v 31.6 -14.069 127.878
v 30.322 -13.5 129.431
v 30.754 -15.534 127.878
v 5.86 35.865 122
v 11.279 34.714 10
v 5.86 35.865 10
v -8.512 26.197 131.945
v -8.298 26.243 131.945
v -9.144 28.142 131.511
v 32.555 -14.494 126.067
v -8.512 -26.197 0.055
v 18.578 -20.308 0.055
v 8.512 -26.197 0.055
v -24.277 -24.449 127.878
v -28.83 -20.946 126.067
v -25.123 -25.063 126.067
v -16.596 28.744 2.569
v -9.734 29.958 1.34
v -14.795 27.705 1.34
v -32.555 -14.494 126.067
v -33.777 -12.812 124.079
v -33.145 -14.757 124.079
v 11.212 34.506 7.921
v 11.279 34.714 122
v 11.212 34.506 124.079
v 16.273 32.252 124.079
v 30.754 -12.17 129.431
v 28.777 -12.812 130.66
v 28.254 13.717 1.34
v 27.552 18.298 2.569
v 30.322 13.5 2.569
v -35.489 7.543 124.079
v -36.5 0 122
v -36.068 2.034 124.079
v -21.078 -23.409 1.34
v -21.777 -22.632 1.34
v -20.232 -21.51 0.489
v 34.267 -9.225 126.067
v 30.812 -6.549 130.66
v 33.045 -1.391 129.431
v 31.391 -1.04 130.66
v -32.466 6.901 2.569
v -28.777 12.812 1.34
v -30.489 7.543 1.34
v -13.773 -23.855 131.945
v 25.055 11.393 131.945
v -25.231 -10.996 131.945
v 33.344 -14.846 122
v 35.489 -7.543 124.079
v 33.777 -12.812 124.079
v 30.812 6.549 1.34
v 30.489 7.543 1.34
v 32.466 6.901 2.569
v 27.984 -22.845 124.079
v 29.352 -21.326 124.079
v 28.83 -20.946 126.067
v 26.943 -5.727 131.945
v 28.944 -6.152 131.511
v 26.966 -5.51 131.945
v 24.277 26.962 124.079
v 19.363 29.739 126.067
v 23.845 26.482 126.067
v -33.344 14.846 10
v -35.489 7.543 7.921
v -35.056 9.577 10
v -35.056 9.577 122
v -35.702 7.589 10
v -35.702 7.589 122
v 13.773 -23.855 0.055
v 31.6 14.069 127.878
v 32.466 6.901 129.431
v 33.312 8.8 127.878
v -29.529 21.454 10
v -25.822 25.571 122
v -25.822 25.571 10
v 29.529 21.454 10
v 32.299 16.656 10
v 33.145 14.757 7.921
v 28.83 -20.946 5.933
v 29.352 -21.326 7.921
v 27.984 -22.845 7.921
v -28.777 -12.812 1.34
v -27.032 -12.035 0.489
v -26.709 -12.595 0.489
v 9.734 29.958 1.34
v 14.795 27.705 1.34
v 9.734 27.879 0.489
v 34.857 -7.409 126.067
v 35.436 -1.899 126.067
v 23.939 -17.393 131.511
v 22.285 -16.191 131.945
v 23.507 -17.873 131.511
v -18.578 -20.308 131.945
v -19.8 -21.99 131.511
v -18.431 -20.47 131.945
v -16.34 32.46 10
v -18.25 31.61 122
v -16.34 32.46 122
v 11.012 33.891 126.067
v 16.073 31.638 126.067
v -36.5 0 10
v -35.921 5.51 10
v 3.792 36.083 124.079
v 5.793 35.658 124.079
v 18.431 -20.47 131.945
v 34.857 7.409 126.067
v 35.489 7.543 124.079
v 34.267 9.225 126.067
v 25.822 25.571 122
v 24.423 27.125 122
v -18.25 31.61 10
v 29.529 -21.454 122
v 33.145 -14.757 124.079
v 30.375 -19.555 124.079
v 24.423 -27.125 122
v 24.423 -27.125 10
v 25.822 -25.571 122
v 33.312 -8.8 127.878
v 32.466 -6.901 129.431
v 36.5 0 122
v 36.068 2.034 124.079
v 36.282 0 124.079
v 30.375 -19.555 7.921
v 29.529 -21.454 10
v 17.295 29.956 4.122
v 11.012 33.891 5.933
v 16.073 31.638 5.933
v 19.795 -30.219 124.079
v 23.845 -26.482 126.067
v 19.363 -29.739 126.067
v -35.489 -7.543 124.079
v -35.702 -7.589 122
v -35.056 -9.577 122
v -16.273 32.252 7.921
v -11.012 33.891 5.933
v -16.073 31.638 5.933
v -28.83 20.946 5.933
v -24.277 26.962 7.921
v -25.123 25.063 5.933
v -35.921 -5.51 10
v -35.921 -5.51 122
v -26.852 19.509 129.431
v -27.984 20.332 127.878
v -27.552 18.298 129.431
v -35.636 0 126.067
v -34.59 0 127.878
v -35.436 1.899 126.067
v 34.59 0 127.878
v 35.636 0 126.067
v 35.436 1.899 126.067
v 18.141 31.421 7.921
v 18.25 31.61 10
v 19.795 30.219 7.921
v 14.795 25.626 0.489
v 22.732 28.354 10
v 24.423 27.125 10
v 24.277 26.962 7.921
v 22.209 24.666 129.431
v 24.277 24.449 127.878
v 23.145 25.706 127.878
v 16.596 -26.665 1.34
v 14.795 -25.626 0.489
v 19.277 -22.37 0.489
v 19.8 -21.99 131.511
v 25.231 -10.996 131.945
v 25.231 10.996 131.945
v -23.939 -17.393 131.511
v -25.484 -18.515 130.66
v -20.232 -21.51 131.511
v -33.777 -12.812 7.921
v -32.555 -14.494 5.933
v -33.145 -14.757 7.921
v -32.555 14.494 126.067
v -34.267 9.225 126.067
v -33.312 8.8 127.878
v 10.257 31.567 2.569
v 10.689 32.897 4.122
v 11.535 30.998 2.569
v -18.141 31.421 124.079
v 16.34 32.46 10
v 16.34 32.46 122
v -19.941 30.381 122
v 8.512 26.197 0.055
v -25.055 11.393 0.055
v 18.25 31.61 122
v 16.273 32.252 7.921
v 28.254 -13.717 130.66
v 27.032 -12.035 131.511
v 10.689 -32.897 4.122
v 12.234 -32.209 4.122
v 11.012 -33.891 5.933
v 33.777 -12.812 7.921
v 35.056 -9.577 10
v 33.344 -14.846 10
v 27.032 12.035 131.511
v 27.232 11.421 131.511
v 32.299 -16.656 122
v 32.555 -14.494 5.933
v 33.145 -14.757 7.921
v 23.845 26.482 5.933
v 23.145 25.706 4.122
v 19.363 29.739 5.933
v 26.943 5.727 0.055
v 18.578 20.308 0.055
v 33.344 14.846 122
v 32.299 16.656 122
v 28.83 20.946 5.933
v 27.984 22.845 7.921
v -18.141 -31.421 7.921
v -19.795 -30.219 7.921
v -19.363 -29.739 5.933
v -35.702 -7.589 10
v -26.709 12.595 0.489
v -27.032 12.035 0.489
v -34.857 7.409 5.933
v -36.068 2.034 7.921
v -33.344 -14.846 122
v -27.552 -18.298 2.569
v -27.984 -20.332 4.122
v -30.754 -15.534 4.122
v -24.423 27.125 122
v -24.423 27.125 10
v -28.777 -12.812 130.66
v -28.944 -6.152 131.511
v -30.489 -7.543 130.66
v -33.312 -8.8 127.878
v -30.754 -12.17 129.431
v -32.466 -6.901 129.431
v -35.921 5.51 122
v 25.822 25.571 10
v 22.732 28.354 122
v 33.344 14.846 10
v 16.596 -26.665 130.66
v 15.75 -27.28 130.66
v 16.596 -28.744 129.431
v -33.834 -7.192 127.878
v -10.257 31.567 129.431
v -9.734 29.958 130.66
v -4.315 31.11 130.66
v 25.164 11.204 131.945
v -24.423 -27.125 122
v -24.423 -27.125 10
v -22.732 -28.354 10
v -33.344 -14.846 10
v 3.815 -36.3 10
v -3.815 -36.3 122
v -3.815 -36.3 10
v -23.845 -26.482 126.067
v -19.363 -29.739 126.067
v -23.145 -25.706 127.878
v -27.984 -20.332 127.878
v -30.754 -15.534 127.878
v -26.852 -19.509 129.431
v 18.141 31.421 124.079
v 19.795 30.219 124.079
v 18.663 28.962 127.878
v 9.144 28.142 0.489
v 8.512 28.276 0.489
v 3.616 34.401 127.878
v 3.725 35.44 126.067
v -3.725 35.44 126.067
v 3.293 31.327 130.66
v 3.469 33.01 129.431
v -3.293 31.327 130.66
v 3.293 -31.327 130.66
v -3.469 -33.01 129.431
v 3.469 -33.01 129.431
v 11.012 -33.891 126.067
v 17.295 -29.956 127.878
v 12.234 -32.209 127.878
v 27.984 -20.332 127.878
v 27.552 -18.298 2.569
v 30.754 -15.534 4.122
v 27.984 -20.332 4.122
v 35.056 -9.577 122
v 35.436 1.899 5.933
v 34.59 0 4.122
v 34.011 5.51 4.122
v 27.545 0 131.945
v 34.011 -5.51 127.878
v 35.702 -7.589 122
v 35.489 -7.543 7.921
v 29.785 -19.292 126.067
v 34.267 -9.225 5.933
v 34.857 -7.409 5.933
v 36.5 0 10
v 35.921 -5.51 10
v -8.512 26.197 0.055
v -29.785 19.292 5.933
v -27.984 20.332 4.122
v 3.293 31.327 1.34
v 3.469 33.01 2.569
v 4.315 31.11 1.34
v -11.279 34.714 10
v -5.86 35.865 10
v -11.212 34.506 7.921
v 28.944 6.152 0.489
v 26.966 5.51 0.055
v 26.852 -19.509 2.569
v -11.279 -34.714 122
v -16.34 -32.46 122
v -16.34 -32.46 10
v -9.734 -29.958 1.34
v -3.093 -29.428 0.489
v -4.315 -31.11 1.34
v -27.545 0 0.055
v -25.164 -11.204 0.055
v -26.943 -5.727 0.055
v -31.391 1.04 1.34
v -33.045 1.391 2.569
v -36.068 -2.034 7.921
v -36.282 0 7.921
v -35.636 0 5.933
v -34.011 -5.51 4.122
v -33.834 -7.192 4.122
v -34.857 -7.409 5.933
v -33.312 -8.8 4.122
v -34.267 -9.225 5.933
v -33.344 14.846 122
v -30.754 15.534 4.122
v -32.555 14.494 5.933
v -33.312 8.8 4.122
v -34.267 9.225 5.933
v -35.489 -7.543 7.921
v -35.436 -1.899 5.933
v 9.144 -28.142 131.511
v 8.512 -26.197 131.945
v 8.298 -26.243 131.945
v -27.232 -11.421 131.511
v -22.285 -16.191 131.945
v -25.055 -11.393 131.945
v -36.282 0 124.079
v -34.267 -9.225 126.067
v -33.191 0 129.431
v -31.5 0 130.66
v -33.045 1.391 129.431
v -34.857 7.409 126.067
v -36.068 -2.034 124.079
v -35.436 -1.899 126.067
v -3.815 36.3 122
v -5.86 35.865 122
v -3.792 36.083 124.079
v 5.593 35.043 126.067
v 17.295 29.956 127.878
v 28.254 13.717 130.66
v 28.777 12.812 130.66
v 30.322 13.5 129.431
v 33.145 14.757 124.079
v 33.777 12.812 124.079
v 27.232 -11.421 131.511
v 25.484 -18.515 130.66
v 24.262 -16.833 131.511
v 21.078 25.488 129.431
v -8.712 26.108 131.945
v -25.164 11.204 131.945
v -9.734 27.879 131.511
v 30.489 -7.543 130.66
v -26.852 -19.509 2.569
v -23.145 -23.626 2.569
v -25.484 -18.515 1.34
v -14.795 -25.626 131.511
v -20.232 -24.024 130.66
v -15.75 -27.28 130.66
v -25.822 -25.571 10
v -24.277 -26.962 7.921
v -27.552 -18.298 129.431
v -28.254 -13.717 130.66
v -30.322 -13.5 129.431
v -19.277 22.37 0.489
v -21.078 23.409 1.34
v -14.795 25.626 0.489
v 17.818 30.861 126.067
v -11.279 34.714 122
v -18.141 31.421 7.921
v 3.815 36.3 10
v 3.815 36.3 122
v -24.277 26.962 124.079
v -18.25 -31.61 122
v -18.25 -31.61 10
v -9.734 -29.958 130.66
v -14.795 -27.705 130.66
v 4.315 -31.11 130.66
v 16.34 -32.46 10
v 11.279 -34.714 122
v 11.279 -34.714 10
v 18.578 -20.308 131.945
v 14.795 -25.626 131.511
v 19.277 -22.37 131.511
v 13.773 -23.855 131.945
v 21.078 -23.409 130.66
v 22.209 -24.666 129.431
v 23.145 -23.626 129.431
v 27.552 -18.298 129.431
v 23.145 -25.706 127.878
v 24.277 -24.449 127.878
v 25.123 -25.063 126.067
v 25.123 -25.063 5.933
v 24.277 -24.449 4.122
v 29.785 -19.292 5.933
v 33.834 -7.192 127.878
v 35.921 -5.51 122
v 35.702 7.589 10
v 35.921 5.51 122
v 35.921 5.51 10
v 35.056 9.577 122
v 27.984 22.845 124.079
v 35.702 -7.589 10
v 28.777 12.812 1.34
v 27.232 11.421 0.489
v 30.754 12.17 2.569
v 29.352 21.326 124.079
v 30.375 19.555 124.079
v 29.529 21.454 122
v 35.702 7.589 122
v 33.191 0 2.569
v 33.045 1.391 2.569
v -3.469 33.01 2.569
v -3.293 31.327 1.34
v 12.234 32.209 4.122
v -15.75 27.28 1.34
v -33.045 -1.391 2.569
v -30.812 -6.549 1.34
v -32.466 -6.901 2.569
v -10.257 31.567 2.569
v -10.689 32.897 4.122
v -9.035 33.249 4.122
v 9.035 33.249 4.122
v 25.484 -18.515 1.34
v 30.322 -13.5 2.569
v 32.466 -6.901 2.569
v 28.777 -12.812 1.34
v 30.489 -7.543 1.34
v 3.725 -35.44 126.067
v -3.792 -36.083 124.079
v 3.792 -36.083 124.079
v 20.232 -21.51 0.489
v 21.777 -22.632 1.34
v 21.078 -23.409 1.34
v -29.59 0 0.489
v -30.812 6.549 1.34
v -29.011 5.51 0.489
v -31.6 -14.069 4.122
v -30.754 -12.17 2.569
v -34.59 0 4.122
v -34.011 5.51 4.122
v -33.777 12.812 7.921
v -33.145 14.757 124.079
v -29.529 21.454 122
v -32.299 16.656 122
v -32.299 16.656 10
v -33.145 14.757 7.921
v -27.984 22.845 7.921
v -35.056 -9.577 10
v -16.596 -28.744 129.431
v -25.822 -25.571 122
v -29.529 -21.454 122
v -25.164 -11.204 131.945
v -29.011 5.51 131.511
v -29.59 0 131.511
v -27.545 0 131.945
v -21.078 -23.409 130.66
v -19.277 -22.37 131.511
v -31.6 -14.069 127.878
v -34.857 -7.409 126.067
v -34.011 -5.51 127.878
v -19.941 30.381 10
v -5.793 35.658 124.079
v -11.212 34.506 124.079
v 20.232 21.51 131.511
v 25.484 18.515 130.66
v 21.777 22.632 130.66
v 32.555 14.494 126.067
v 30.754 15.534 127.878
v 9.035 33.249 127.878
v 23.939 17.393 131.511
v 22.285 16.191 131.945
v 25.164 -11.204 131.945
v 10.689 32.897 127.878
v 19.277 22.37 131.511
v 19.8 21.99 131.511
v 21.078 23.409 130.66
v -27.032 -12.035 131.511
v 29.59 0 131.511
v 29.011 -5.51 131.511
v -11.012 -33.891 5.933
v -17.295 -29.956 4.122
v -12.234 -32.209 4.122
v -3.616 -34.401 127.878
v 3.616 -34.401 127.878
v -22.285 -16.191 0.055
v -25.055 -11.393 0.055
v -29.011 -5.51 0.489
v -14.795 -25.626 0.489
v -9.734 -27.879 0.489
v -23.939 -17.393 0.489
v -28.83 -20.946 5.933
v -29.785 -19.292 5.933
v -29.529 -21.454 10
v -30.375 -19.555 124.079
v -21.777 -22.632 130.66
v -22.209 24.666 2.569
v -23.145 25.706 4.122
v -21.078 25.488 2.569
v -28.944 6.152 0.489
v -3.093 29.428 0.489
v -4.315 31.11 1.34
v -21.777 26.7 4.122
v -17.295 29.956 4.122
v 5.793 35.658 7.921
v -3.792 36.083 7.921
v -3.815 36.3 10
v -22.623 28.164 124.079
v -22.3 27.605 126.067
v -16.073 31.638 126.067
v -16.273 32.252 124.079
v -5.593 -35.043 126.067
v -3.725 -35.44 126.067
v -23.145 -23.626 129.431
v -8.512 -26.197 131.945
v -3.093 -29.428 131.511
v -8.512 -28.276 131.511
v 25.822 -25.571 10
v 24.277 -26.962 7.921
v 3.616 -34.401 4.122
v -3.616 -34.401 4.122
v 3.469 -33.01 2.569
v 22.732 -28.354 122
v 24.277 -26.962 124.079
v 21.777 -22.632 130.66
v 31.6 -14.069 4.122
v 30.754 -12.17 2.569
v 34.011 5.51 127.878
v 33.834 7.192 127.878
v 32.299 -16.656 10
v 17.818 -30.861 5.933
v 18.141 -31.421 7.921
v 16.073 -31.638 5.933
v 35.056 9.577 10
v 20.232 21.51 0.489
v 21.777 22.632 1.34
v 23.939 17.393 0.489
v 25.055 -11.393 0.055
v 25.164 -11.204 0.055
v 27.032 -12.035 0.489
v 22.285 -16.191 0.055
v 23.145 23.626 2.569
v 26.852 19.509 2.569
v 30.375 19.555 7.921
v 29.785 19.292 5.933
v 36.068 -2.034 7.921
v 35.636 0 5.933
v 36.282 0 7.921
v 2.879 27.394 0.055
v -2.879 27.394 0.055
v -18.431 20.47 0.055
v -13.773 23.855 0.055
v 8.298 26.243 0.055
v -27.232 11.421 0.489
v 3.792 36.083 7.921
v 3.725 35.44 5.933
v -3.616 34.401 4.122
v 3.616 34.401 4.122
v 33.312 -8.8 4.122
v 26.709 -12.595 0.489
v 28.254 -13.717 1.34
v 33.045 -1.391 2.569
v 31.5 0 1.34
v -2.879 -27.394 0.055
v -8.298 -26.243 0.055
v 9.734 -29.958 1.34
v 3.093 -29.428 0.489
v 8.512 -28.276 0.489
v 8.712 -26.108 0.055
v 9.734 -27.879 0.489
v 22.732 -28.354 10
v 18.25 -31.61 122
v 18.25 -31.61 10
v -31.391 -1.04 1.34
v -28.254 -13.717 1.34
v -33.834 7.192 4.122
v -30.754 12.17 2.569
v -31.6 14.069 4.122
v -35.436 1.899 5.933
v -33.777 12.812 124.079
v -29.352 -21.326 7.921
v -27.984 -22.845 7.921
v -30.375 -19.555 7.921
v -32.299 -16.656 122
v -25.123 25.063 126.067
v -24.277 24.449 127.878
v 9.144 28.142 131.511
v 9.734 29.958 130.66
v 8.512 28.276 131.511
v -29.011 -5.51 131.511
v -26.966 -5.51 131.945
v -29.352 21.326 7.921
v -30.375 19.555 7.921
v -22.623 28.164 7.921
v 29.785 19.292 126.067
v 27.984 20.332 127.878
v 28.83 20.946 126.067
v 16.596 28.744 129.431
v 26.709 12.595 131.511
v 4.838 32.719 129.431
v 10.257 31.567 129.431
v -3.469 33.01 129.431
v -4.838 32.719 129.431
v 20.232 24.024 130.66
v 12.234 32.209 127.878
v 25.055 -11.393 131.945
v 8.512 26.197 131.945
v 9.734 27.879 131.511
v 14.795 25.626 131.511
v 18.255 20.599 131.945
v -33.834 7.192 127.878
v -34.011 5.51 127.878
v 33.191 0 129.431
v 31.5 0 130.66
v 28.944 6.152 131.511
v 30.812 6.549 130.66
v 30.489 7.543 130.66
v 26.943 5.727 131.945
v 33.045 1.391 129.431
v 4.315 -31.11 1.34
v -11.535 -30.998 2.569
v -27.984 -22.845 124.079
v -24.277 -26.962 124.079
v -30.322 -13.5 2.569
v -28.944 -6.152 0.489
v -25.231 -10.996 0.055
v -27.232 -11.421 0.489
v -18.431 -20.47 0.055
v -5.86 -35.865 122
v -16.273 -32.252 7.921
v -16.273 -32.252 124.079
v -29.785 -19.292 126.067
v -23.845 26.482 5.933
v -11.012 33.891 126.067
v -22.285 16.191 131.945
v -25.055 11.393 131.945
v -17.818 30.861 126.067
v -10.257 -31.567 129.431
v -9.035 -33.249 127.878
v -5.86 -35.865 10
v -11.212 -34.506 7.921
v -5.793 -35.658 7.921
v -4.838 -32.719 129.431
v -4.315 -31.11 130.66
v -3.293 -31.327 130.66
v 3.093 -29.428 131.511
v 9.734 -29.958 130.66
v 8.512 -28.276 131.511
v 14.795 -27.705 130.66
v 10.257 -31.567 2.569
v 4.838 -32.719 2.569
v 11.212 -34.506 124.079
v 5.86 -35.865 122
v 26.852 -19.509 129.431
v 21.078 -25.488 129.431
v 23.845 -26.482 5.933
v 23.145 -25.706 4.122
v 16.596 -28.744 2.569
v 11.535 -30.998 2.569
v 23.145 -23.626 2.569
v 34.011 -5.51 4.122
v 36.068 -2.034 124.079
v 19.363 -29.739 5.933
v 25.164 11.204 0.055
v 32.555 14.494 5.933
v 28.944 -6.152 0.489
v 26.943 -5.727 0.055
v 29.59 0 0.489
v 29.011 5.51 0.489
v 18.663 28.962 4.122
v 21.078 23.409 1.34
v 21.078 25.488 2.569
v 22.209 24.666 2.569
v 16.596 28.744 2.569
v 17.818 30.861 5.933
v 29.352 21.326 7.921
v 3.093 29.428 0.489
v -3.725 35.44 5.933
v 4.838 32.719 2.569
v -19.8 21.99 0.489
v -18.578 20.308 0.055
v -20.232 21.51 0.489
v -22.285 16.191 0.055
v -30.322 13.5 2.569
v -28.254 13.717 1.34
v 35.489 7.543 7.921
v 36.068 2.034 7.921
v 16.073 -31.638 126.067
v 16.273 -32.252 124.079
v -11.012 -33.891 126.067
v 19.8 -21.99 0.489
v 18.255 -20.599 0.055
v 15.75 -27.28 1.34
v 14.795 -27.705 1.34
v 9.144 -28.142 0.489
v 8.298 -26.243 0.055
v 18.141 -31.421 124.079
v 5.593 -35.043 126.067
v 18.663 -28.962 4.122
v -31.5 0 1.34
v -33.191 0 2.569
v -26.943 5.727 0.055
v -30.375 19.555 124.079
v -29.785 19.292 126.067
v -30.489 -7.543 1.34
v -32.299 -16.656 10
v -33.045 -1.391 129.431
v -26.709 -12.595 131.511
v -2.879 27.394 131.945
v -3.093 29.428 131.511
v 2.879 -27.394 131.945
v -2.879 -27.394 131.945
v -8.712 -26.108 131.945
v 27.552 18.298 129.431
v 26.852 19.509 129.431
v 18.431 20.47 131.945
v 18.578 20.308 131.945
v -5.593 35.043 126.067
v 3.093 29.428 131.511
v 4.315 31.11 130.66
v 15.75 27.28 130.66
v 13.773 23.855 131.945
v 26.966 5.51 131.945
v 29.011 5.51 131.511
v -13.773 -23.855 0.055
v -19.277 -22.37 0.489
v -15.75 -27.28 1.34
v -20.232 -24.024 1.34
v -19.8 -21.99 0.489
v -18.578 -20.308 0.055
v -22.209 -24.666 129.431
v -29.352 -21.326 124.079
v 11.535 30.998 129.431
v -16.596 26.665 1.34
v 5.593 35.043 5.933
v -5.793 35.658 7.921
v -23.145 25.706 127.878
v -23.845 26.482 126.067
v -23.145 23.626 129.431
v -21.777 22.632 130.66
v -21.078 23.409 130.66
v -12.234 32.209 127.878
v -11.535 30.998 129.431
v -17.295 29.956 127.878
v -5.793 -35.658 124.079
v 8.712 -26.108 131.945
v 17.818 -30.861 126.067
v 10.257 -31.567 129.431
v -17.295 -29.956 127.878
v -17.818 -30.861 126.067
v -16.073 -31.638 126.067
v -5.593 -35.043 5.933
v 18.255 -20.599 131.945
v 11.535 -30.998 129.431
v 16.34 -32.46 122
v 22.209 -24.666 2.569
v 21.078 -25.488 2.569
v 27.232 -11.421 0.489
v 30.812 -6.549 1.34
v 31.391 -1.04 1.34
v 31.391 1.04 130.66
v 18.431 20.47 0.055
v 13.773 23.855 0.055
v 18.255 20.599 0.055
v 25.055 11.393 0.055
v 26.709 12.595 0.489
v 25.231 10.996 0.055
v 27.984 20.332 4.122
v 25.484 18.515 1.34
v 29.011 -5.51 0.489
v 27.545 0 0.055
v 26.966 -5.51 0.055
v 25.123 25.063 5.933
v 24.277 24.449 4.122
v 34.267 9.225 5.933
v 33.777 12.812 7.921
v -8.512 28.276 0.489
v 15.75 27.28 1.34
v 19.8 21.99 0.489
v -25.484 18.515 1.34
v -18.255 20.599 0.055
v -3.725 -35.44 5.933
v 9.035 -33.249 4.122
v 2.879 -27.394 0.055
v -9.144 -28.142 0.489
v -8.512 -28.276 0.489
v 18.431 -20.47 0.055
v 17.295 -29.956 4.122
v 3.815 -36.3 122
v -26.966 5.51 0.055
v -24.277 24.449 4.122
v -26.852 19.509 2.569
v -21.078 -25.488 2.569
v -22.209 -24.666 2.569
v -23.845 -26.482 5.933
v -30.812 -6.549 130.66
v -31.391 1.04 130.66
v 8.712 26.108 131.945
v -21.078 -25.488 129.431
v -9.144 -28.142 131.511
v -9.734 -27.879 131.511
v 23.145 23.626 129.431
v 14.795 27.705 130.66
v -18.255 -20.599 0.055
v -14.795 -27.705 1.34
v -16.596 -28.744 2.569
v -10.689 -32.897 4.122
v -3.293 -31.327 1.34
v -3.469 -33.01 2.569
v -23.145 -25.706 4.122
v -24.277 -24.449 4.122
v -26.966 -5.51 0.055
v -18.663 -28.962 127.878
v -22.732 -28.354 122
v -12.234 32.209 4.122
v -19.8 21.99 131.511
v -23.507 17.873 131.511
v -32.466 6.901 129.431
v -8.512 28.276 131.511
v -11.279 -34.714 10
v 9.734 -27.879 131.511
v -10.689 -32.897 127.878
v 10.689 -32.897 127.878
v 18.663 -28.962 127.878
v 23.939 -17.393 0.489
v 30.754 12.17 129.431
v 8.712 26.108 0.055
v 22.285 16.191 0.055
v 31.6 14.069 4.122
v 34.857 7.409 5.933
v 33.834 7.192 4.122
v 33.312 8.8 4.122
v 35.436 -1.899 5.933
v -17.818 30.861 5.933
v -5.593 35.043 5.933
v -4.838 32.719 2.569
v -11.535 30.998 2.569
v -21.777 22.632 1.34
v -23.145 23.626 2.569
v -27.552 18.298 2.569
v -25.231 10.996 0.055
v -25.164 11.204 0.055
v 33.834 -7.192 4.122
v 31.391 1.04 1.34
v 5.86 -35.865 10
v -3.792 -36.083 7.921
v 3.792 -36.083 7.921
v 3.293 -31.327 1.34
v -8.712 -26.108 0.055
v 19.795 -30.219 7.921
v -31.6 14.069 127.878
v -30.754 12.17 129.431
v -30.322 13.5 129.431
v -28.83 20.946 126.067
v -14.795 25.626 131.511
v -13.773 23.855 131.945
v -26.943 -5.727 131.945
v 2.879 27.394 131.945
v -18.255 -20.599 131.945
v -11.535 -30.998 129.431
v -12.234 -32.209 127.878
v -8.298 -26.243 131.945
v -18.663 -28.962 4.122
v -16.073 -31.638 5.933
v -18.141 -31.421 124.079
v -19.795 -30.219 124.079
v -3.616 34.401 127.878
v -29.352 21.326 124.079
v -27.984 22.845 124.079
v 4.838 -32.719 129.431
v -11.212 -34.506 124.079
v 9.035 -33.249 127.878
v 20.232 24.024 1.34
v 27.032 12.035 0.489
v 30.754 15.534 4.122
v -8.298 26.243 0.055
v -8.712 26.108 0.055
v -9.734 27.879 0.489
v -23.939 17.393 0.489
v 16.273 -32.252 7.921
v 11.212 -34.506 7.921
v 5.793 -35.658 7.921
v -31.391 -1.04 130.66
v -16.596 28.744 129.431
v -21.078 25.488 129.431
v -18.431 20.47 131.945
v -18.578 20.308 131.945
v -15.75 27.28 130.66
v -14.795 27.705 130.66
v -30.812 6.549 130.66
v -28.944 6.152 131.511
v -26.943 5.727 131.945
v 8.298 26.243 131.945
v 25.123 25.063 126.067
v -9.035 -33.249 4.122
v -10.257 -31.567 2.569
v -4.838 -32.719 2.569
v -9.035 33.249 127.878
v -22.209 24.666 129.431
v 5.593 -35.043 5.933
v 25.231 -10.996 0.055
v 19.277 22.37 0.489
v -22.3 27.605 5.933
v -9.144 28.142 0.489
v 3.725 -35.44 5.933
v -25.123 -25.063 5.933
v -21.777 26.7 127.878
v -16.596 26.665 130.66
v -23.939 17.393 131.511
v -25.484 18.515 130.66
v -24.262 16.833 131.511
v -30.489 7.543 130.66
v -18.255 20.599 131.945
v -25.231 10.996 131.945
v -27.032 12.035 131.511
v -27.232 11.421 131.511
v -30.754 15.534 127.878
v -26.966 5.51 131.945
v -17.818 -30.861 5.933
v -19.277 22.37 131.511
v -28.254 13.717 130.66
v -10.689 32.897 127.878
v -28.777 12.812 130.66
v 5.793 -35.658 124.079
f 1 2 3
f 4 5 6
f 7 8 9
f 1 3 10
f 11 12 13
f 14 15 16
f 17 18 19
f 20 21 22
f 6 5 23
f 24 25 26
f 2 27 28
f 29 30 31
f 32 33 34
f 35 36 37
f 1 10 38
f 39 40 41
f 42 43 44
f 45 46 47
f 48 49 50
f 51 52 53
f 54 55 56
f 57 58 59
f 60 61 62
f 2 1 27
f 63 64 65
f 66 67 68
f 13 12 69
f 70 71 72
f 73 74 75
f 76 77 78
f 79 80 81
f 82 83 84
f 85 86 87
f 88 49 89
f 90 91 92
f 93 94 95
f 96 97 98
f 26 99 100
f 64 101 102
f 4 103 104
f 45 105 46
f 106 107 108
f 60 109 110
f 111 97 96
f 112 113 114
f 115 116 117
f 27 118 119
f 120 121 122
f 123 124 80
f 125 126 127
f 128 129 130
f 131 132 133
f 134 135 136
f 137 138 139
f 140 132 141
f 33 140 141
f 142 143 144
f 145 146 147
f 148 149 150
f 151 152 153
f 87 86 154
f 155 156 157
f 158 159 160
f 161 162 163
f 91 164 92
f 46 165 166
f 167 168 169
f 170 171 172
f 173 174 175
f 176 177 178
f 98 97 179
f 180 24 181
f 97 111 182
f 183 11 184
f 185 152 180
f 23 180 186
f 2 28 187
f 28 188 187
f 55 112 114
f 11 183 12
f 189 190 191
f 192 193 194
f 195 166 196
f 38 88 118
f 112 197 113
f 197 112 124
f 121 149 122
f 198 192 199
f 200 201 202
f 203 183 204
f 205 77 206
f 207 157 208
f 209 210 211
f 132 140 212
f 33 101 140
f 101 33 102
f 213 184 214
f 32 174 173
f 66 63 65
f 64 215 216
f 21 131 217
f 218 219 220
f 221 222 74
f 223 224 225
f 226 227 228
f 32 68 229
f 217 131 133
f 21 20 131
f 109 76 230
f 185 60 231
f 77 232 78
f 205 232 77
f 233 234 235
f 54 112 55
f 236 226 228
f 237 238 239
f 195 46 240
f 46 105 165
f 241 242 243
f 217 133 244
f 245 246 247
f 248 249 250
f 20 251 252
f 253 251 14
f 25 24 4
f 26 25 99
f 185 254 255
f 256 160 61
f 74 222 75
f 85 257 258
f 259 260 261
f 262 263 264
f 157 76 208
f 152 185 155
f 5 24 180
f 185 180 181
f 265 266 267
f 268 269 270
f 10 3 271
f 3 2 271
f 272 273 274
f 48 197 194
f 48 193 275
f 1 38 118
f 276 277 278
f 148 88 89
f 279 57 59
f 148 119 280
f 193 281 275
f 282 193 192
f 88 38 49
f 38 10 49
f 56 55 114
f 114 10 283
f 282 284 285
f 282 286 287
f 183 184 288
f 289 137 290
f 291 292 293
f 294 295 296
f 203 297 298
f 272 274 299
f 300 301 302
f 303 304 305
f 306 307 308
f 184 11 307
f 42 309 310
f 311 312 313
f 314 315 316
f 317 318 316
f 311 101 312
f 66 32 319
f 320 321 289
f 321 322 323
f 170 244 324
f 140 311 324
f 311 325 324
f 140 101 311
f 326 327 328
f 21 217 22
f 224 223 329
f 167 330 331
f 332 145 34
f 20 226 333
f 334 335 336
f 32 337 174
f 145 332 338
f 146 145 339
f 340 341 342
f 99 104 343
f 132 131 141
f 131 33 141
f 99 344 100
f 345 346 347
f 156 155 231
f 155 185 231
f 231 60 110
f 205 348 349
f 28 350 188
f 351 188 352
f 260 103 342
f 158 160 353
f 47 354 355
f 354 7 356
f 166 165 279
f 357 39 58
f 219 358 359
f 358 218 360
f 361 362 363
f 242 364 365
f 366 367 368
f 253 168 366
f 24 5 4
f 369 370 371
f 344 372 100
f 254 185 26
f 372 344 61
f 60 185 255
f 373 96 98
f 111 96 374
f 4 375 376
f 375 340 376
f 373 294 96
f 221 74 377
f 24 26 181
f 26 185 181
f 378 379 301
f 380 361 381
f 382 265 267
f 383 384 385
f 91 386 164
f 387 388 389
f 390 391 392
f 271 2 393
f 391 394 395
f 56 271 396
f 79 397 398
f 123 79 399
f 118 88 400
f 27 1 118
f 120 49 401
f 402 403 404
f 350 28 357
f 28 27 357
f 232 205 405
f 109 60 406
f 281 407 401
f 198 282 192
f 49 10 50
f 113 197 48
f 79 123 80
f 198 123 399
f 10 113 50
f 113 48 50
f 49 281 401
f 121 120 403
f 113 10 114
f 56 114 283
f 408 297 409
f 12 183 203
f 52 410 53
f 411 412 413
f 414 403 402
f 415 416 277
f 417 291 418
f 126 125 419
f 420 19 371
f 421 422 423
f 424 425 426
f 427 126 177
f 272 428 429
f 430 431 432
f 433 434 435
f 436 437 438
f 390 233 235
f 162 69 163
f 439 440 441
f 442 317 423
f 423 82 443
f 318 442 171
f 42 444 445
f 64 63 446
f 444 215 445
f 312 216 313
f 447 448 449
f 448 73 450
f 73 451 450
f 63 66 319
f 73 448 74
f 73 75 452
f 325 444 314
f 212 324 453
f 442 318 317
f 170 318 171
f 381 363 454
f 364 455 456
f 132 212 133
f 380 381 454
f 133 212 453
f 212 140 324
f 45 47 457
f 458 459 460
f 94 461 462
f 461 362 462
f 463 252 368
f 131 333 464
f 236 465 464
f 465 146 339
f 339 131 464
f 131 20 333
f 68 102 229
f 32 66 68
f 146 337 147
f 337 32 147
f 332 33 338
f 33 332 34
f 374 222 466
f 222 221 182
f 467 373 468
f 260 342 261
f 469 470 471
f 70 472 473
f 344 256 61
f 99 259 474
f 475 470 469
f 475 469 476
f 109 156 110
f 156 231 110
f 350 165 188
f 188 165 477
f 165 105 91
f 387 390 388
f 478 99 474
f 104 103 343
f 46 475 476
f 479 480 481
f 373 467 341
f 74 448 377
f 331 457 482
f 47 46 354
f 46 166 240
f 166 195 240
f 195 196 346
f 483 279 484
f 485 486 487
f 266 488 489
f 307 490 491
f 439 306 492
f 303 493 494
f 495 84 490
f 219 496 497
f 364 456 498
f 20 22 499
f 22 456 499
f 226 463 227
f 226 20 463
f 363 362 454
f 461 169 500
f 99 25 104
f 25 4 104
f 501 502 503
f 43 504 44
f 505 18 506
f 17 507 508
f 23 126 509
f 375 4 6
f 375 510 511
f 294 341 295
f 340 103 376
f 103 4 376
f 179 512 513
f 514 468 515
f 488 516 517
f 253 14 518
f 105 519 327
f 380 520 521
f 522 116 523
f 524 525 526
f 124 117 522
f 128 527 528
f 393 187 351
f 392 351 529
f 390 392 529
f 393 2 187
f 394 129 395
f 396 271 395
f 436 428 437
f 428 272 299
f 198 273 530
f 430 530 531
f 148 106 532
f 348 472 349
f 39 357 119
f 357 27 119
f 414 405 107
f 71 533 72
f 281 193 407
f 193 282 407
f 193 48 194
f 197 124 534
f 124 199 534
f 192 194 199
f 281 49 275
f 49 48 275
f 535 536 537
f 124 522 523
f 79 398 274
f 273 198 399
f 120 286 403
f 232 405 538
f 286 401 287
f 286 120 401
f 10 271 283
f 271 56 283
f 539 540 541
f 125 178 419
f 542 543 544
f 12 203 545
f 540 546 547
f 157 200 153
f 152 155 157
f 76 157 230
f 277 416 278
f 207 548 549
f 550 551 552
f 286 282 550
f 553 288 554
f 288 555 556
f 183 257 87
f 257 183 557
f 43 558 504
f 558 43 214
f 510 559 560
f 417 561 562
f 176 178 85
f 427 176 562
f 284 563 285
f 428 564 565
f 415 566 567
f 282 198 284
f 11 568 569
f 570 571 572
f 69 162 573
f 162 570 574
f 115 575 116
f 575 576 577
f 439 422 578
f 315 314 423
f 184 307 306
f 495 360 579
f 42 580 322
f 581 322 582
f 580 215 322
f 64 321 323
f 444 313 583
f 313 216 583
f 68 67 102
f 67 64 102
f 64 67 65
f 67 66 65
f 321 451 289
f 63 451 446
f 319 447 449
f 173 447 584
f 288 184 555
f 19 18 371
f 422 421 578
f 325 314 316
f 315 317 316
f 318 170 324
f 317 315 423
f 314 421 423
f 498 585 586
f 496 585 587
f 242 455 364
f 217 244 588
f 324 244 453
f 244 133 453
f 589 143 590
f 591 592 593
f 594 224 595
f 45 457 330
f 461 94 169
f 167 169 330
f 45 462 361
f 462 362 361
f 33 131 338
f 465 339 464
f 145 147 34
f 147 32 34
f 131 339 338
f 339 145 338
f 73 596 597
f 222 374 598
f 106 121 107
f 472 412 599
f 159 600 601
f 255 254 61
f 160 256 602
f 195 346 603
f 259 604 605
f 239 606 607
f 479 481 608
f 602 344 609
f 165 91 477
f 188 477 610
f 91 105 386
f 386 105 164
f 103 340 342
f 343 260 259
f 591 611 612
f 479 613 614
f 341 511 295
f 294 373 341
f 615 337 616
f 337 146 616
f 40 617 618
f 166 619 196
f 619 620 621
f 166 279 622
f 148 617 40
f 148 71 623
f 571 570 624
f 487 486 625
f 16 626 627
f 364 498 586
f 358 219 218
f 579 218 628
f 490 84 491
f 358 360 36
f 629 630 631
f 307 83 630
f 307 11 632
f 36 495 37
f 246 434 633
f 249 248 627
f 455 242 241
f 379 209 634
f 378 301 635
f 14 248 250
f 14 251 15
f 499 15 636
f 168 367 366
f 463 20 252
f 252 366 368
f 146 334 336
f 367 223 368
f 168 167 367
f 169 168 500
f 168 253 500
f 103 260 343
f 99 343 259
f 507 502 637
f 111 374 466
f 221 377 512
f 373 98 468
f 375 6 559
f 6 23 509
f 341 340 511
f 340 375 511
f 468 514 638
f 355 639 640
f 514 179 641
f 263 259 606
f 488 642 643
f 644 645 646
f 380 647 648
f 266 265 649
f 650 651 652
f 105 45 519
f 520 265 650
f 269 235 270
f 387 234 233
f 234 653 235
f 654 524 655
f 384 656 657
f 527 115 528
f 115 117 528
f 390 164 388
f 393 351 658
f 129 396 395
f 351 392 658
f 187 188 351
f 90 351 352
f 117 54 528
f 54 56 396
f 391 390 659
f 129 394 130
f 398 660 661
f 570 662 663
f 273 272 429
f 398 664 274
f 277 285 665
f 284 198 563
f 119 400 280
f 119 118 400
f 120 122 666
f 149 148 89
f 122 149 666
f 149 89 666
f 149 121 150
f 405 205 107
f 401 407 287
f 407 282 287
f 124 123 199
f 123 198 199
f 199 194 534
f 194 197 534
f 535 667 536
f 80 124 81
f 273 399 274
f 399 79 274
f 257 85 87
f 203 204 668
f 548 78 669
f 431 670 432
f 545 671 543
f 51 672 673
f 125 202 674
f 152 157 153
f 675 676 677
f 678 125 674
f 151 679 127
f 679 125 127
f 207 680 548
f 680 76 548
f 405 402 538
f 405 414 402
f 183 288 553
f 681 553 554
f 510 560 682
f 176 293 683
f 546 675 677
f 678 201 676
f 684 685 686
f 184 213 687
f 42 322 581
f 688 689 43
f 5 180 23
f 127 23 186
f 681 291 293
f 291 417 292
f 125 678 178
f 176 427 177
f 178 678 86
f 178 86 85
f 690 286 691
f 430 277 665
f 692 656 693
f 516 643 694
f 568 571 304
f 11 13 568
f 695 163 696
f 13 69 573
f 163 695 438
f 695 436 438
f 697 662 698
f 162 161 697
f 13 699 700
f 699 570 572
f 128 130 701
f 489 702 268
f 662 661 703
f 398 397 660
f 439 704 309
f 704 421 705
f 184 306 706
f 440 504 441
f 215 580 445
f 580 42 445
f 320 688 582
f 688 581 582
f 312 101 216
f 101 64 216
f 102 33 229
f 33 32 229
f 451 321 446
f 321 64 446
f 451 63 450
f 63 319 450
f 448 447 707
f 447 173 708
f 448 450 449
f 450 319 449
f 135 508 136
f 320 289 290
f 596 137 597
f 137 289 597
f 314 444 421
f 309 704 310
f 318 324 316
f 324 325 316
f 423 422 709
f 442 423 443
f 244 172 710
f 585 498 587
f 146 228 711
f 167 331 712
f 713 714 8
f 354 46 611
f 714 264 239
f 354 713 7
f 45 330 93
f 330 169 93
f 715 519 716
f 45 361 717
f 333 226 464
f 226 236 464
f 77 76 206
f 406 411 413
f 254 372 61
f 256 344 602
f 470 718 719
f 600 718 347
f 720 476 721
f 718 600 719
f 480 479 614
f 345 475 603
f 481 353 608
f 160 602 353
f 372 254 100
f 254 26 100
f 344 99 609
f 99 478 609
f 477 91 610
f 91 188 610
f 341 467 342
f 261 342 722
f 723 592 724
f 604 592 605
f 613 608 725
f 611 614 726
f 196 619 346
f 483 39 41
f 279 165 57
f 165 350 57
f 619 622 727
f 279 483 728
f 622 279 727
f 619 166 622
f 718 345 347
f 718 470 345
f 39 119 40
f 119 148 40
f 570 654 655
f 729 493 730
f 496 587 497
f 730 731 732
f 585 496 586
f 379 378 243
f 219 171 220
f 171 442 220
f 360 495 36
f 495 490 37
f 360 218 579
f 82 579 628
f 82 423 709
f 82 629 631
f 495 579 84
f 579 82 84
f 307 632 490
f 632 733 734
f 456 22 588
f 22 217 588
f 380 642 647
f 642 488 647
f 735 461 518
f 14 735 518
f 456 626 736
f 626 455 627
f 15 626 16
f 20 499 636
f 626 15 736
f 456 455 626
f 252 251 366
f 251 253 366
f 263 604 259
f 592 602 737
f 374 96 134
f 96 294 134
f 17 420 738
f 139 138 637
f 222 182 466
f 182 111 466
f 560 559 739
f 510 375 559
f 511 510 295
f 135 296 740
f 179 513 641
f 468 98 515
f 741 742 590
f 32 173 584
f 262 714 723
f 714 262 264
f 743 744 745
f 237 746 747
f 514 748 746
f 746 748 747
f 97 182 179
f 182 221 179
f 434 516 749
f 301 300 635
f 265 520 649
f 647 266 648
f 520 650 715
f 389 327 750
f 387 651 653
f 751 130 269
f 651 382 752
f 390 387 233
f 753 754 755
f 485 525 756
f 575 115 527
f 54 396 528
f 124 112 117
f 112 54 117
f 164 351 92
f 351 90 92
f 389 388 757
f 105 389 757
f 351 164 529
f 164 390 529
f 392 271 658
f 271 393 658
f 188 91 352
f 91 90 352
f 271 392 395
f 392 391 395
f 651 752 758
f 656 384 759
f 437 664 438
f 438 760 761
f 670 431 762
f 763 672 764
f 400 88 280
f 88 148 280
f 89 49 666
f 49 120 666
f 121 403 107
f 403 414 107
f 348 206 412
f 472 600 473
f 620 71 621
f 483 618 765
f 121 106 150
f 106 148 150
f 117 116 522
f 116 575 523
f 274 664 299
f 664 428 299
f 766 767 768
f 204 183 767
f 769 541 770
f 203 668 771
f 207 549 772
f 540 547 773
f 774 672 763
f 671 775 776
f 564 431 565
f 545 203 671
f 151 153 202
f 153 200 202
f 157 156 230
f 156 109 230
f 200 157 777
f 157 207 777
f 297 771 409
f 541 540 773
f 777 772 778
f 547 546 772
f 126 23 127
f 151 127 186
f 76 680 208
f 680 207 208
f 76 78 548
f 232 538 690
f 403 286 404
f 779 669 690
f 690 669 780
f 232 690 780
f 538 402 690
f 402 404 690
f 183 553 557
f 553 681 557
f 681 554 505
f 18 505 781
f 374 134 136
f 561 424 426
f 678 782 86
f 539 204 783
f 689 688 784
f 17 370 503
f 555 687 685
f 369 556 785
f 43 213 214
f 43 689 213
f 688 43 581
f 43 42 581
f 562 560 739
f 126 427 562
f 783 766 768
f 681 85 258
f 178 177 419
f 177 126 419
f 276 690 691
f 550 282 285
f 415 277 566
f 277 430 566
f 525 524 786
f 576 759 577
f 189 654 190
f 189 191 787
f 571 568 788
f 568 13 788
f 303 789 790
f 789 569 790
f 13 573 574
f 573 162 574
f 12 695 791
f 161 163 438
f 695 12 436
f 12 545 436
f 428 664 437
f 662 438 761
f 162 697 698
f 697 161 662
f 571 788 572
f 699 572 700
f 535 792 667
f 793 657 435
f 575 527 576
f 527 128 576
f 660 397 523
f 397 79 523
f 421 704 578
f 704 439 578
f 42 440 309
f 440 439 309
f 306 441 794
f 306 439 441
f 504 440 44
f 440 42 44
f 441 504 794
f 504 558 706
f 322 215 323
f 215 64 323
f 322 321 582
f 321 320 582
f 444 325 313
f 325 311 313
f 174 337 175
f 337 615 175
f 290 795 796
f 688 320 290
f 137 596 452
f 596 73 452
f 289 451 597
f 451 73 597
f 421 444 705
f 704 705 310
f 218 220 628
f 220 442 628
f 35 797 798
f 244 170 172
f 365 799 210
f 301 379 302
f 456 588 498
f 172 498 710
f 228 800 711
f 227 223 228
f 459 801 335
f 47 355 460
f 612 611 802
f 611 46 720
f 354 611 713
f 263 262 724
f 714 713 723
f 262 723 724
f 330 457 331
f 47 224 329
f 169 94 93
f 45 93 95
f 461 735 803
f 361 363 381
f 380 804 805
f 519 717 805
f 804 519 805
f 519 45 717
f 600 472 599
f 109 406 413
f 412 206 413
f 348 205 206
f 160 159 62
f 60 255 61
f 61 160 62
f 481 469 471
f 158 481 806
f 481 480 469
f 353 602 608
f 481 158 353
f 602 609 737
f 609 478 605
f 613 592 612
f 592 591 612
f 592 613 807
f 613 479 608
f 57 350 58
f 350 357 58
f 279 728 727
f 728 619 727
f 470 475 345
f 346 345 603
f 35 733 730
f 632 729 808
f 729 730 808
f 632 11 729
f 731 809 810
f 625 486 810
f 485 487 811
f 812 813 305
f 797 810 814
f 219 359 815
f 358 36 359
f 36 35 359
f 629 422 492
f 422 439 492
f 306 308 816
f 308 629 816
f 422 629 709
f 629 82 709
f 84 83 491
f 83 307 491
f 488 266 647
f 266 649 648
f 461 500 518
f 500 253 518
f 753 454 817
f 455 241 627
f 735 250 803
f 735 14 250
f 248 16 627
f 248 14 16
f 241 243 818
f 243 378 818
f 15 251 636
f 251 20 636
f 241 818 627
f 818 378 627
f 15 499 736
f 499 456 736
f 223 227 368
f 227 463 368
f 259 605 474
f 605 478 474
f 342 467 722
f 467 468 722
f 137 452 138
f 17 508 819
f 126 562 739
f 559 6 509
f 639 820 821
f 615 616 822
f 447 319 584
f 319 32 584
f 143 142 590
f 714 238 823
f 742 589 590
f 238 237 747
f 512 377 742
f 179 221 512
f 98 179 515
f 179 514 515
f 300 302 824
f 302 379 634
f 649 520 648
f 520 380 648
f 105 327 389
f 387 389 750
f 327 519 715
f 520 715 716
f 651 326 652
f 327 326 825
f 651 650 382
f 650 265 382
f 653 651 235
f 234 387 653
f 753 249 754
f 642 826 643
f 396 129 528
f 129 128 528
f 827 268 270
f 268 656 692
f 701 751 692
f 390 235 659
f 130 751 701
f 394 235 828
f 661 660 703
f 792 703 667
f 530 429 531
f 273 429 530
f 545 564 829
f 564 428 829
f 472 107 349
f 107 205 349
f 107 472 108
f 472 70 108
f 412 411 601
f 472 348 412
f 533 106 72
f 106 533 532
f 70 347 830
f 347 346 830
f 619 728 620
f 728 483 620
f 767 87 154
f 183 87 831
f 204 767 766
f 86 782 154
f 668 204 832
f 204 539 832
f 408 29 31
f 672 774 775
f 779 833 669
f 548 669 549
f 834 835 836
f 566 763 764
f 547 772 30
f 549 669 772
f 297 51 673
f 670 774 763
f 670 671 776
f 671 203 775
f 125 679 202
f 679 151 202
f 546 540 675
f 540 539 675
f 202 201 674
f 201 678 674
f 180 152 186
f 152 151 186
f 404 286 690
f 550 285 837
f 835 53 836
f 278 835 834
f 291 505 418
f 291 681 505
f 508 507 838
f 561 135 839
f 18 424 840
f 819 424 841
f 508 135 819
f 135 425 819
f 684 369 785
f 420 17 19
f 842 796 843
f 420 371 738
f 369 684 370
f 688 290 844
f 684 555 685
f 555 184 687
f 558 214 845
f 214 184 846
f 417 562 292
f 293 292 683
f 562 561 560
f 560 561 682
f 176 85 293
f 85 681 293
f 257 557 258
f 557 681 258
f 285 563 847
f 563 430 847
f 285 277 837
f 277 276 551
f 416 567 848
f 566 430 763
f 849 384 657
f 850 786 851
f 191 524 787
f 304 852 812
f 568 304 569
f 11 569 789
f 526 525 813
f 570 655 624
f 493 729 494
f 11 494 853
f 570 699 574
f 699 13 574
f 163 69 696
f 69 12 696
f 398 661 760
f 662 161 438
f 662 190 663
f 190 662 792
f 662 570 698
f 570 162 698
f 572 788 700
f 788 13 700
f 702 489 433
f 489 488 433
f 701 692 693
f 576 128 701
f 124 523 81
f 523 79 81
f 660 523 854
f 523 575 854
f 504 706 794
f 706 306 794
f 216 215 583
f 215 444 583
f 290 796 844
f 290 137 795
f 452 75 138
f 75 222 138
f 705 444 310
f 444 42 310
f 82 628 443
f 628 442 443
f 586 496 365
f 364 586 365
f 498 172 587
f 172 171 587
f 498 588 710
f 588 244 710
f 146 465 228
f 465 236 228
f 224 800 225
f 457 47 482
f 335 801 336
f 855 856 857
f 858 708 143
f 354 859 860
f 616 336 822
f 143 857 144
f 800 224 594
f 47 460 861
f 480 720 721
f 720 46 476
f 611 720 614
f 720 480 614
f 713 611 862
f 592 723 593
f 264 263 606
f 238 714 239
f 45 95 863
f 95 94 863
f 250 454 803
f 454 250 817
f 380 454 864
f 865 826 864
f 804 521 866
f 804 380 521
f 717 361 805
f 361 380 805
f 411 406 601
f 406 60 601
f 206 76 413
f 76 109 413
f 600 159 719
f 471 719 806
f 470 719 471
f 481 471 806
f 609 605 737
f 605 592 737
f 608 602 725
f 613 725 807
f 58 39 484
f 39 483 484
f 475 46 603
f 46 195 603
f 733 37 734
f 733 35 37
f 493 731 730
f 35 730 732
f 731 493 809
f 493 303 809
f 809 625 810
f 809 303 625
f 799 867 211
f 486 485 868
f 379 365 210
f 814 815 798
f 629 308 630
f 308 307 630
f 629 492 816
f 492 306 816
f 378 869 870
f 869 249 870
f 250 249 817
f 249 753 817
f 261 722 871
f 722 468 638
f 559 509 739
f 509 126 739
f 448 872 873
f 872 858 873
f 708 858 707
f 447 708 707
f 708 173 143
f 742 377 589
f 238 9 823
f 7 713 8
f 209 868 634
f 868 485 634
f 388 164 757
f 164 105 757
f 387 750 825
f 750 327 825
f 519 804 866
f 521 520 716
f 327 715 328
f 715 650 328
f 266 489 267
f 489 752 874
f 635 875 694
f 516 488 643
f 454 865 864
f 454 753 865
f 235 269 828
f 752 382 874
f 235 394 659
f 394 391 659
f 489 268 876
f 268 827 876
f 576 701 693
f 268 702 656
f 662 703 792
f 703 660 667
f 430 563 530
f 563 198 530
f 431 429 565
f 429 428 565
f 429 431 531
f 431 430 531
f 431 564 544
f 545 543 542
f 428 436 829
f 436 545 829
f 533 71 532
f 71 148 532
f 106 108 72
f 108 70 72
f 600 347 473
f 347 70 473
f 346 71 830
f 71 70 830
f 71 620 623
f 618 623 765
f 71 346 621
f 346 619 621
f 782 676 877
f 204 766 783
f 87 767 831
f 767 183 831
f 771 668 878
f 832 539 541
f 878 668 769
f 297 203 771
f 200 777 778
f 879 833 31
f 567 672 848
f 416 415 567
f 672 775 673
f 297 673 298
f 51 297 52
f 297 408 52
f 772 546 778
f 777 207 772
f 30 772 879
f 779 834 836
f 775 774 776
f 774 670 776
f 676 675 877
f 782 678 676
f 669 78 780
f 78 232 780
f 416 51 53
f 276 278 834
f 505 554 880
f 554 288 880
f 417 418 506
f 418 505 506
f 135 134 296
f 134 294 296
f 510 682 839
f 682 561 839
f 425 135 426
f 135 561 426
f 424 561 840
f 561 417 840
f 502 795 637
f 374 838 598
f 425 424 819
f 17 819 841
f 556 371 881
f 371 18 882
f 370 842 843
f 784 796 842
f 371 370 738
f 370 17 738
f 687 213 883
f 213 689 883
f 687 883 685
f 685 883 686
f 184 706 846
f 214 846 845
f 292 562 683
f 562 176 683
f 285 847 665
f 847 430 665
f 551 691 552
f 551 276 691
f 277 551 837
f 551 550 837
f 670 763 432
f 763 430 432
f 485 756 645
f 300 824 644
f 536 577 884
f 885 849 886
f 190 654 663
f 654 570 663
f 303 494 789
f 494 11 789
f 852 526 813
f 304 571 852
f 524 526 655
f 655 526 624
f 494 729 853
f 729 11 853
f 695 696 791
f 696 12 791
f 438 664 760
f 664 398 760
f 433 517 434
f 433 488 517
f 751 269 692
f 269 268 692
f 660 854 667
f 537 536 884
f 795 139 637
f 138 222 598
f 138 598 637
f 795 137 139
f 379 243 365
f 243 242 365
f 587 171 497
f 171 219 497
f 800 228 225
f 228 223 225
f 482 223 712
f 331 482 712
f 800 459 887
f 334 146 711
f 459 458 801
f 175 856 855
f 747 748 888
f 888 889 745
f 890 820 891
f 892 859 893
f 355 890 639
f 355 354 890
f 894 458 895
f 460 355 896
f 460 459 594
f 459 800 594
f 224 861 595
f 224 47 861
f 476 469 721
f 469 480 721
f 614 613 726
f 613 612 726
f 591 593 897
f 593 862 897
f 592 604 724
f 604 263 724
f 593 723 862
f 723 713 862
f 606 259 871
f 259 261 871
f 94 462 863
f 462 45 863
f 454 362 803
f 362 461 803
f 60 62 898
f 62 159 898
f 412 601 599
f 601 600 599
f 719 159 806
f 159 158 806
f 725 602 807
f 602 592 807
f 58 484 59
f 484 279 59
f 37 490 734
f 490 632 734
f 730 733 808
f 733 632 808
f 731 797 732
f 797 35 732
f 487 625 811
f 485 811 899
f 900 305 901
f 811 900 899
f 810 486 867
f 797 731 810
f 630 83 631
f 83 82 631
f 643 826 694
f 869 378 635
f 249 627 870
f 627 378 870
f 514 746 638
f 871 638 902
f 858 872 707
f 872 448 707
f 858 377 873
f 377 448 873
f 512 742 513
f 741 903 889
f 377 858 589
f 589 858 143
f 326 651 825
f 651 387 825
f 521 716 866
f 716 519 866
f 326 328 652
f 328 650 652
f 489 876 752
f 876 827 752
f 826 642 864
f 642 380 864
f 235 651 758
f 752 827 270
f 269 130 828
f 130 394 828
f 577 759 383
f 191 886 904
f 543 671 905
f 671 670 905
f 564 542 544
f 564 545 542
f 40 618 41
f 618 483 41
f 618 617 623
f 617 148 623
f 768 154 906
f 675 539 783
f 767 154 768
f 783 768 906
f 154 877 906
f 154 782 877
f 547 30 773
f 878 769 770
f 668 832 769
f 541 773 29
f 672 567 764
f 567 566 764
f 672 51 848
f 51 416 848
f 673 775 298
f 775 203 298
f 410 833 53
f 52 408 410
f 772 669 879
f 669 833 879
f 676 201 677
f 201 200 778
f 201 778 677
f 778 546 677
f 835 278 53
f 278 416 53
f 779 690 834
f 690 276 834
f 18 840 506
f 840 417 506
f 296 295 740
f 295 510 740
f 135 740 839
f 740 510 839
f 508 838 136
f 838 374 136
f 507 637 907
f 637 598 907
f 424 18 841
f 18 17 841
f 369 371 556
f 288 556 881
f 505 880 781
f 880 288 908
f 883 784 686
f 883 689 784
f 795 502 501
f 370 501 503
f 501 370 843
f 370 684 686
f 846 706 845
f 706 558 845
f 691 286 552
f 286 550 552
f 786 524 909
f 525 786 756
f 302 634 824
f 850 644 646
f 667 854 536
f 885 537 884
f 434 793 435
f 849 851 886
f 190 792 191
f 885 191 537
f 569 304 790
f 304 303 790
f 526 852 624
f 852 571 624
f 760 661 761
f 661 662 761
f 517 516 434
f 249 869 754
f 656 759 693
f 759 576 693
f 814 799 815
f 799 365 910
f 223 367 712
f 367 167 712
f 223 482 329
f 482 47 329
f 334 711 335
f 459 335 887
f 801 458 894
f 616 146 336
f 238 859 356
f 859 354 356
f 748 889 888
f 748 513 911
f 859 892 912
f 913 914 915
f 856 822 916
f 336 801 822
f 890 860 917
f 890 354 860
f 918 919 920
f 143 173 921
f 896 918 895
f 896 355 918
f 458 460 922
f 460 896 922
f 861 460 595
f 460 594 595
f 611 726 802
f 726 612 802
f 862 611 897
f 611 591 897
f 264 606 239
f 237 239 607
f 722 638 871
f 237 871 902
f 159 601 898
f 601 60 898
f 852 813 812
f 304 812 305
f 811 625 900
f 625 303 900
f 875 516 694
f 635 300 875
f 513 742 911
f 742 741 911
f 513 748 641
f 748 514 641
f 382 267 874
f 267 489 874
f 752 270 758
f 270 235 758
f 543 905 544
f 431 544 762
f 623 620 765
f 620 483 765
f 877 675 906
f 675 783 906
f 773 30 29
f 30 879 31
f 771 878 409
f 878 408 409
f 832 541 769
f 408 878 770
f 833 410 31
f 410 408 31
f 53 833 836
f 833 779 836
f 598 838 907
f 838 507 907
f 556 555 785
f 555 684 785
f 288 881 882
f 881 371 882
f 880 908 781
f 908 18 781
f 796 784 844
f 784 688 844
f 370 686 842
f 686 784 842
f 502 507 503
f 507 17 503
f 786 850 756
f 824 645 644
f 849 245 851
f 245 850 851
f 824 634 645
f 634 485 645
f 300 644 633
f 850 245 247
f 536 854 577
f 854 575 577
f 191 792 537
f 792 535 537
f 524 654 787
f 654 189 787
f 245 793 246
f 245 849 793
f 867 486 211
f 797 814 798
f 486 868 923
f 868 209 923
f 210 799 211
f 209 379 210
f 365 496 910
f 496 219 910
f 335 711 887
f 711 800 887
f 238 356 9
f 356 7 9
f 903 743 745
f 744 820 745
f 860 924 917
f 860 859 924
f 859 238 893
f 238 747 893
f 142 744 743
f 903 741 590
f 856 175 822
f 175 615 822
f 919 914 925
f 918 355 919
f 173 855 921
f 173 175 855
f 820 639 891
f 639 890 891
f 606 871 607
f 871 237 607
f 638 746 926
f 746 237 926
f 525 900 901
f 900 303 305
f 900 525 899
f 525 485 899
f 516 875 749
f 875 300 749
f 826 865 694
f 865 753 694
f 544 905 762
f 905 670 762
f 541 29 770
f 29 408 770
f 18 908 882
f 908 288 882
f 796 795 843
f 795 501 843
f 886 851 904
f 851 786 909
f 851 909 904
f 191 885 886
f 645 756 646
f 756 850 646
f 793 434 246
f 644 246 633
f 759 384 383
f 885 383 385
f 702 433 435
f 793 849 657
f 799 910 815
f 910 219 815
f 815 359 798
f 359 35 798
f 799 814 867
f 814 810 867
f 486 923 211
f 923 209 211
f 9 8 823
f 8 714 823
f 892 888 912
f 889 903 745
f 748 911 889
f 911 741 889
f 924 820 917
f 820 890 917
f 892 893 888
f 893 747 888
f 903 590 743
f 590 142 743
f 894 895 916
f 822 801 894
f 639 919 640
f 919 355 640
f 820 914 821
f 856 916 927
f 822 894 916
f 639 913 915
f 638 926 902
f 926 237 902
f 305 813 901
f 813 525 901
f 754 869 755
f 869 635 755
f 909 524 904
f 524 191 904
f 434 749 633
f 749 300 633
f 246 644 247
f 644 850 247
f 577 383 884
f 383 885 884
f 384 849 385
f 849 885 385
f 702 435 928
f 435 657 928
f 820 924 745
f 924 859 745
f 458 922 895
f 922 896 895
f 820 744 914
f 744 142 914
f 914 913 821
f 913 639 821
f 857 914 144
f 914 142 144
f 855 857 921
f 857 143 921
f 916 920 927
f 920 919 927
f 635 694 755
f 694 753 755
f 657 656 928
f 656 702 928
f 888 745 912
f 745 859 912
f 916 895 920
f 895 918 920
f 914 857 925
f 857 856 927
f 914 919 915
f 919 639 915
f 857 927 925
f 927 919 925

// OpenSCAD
translate([0,0,10]) minkowski() {
    cylinder(d=53, h=112, center=false);
    sphere(d=20);
}
